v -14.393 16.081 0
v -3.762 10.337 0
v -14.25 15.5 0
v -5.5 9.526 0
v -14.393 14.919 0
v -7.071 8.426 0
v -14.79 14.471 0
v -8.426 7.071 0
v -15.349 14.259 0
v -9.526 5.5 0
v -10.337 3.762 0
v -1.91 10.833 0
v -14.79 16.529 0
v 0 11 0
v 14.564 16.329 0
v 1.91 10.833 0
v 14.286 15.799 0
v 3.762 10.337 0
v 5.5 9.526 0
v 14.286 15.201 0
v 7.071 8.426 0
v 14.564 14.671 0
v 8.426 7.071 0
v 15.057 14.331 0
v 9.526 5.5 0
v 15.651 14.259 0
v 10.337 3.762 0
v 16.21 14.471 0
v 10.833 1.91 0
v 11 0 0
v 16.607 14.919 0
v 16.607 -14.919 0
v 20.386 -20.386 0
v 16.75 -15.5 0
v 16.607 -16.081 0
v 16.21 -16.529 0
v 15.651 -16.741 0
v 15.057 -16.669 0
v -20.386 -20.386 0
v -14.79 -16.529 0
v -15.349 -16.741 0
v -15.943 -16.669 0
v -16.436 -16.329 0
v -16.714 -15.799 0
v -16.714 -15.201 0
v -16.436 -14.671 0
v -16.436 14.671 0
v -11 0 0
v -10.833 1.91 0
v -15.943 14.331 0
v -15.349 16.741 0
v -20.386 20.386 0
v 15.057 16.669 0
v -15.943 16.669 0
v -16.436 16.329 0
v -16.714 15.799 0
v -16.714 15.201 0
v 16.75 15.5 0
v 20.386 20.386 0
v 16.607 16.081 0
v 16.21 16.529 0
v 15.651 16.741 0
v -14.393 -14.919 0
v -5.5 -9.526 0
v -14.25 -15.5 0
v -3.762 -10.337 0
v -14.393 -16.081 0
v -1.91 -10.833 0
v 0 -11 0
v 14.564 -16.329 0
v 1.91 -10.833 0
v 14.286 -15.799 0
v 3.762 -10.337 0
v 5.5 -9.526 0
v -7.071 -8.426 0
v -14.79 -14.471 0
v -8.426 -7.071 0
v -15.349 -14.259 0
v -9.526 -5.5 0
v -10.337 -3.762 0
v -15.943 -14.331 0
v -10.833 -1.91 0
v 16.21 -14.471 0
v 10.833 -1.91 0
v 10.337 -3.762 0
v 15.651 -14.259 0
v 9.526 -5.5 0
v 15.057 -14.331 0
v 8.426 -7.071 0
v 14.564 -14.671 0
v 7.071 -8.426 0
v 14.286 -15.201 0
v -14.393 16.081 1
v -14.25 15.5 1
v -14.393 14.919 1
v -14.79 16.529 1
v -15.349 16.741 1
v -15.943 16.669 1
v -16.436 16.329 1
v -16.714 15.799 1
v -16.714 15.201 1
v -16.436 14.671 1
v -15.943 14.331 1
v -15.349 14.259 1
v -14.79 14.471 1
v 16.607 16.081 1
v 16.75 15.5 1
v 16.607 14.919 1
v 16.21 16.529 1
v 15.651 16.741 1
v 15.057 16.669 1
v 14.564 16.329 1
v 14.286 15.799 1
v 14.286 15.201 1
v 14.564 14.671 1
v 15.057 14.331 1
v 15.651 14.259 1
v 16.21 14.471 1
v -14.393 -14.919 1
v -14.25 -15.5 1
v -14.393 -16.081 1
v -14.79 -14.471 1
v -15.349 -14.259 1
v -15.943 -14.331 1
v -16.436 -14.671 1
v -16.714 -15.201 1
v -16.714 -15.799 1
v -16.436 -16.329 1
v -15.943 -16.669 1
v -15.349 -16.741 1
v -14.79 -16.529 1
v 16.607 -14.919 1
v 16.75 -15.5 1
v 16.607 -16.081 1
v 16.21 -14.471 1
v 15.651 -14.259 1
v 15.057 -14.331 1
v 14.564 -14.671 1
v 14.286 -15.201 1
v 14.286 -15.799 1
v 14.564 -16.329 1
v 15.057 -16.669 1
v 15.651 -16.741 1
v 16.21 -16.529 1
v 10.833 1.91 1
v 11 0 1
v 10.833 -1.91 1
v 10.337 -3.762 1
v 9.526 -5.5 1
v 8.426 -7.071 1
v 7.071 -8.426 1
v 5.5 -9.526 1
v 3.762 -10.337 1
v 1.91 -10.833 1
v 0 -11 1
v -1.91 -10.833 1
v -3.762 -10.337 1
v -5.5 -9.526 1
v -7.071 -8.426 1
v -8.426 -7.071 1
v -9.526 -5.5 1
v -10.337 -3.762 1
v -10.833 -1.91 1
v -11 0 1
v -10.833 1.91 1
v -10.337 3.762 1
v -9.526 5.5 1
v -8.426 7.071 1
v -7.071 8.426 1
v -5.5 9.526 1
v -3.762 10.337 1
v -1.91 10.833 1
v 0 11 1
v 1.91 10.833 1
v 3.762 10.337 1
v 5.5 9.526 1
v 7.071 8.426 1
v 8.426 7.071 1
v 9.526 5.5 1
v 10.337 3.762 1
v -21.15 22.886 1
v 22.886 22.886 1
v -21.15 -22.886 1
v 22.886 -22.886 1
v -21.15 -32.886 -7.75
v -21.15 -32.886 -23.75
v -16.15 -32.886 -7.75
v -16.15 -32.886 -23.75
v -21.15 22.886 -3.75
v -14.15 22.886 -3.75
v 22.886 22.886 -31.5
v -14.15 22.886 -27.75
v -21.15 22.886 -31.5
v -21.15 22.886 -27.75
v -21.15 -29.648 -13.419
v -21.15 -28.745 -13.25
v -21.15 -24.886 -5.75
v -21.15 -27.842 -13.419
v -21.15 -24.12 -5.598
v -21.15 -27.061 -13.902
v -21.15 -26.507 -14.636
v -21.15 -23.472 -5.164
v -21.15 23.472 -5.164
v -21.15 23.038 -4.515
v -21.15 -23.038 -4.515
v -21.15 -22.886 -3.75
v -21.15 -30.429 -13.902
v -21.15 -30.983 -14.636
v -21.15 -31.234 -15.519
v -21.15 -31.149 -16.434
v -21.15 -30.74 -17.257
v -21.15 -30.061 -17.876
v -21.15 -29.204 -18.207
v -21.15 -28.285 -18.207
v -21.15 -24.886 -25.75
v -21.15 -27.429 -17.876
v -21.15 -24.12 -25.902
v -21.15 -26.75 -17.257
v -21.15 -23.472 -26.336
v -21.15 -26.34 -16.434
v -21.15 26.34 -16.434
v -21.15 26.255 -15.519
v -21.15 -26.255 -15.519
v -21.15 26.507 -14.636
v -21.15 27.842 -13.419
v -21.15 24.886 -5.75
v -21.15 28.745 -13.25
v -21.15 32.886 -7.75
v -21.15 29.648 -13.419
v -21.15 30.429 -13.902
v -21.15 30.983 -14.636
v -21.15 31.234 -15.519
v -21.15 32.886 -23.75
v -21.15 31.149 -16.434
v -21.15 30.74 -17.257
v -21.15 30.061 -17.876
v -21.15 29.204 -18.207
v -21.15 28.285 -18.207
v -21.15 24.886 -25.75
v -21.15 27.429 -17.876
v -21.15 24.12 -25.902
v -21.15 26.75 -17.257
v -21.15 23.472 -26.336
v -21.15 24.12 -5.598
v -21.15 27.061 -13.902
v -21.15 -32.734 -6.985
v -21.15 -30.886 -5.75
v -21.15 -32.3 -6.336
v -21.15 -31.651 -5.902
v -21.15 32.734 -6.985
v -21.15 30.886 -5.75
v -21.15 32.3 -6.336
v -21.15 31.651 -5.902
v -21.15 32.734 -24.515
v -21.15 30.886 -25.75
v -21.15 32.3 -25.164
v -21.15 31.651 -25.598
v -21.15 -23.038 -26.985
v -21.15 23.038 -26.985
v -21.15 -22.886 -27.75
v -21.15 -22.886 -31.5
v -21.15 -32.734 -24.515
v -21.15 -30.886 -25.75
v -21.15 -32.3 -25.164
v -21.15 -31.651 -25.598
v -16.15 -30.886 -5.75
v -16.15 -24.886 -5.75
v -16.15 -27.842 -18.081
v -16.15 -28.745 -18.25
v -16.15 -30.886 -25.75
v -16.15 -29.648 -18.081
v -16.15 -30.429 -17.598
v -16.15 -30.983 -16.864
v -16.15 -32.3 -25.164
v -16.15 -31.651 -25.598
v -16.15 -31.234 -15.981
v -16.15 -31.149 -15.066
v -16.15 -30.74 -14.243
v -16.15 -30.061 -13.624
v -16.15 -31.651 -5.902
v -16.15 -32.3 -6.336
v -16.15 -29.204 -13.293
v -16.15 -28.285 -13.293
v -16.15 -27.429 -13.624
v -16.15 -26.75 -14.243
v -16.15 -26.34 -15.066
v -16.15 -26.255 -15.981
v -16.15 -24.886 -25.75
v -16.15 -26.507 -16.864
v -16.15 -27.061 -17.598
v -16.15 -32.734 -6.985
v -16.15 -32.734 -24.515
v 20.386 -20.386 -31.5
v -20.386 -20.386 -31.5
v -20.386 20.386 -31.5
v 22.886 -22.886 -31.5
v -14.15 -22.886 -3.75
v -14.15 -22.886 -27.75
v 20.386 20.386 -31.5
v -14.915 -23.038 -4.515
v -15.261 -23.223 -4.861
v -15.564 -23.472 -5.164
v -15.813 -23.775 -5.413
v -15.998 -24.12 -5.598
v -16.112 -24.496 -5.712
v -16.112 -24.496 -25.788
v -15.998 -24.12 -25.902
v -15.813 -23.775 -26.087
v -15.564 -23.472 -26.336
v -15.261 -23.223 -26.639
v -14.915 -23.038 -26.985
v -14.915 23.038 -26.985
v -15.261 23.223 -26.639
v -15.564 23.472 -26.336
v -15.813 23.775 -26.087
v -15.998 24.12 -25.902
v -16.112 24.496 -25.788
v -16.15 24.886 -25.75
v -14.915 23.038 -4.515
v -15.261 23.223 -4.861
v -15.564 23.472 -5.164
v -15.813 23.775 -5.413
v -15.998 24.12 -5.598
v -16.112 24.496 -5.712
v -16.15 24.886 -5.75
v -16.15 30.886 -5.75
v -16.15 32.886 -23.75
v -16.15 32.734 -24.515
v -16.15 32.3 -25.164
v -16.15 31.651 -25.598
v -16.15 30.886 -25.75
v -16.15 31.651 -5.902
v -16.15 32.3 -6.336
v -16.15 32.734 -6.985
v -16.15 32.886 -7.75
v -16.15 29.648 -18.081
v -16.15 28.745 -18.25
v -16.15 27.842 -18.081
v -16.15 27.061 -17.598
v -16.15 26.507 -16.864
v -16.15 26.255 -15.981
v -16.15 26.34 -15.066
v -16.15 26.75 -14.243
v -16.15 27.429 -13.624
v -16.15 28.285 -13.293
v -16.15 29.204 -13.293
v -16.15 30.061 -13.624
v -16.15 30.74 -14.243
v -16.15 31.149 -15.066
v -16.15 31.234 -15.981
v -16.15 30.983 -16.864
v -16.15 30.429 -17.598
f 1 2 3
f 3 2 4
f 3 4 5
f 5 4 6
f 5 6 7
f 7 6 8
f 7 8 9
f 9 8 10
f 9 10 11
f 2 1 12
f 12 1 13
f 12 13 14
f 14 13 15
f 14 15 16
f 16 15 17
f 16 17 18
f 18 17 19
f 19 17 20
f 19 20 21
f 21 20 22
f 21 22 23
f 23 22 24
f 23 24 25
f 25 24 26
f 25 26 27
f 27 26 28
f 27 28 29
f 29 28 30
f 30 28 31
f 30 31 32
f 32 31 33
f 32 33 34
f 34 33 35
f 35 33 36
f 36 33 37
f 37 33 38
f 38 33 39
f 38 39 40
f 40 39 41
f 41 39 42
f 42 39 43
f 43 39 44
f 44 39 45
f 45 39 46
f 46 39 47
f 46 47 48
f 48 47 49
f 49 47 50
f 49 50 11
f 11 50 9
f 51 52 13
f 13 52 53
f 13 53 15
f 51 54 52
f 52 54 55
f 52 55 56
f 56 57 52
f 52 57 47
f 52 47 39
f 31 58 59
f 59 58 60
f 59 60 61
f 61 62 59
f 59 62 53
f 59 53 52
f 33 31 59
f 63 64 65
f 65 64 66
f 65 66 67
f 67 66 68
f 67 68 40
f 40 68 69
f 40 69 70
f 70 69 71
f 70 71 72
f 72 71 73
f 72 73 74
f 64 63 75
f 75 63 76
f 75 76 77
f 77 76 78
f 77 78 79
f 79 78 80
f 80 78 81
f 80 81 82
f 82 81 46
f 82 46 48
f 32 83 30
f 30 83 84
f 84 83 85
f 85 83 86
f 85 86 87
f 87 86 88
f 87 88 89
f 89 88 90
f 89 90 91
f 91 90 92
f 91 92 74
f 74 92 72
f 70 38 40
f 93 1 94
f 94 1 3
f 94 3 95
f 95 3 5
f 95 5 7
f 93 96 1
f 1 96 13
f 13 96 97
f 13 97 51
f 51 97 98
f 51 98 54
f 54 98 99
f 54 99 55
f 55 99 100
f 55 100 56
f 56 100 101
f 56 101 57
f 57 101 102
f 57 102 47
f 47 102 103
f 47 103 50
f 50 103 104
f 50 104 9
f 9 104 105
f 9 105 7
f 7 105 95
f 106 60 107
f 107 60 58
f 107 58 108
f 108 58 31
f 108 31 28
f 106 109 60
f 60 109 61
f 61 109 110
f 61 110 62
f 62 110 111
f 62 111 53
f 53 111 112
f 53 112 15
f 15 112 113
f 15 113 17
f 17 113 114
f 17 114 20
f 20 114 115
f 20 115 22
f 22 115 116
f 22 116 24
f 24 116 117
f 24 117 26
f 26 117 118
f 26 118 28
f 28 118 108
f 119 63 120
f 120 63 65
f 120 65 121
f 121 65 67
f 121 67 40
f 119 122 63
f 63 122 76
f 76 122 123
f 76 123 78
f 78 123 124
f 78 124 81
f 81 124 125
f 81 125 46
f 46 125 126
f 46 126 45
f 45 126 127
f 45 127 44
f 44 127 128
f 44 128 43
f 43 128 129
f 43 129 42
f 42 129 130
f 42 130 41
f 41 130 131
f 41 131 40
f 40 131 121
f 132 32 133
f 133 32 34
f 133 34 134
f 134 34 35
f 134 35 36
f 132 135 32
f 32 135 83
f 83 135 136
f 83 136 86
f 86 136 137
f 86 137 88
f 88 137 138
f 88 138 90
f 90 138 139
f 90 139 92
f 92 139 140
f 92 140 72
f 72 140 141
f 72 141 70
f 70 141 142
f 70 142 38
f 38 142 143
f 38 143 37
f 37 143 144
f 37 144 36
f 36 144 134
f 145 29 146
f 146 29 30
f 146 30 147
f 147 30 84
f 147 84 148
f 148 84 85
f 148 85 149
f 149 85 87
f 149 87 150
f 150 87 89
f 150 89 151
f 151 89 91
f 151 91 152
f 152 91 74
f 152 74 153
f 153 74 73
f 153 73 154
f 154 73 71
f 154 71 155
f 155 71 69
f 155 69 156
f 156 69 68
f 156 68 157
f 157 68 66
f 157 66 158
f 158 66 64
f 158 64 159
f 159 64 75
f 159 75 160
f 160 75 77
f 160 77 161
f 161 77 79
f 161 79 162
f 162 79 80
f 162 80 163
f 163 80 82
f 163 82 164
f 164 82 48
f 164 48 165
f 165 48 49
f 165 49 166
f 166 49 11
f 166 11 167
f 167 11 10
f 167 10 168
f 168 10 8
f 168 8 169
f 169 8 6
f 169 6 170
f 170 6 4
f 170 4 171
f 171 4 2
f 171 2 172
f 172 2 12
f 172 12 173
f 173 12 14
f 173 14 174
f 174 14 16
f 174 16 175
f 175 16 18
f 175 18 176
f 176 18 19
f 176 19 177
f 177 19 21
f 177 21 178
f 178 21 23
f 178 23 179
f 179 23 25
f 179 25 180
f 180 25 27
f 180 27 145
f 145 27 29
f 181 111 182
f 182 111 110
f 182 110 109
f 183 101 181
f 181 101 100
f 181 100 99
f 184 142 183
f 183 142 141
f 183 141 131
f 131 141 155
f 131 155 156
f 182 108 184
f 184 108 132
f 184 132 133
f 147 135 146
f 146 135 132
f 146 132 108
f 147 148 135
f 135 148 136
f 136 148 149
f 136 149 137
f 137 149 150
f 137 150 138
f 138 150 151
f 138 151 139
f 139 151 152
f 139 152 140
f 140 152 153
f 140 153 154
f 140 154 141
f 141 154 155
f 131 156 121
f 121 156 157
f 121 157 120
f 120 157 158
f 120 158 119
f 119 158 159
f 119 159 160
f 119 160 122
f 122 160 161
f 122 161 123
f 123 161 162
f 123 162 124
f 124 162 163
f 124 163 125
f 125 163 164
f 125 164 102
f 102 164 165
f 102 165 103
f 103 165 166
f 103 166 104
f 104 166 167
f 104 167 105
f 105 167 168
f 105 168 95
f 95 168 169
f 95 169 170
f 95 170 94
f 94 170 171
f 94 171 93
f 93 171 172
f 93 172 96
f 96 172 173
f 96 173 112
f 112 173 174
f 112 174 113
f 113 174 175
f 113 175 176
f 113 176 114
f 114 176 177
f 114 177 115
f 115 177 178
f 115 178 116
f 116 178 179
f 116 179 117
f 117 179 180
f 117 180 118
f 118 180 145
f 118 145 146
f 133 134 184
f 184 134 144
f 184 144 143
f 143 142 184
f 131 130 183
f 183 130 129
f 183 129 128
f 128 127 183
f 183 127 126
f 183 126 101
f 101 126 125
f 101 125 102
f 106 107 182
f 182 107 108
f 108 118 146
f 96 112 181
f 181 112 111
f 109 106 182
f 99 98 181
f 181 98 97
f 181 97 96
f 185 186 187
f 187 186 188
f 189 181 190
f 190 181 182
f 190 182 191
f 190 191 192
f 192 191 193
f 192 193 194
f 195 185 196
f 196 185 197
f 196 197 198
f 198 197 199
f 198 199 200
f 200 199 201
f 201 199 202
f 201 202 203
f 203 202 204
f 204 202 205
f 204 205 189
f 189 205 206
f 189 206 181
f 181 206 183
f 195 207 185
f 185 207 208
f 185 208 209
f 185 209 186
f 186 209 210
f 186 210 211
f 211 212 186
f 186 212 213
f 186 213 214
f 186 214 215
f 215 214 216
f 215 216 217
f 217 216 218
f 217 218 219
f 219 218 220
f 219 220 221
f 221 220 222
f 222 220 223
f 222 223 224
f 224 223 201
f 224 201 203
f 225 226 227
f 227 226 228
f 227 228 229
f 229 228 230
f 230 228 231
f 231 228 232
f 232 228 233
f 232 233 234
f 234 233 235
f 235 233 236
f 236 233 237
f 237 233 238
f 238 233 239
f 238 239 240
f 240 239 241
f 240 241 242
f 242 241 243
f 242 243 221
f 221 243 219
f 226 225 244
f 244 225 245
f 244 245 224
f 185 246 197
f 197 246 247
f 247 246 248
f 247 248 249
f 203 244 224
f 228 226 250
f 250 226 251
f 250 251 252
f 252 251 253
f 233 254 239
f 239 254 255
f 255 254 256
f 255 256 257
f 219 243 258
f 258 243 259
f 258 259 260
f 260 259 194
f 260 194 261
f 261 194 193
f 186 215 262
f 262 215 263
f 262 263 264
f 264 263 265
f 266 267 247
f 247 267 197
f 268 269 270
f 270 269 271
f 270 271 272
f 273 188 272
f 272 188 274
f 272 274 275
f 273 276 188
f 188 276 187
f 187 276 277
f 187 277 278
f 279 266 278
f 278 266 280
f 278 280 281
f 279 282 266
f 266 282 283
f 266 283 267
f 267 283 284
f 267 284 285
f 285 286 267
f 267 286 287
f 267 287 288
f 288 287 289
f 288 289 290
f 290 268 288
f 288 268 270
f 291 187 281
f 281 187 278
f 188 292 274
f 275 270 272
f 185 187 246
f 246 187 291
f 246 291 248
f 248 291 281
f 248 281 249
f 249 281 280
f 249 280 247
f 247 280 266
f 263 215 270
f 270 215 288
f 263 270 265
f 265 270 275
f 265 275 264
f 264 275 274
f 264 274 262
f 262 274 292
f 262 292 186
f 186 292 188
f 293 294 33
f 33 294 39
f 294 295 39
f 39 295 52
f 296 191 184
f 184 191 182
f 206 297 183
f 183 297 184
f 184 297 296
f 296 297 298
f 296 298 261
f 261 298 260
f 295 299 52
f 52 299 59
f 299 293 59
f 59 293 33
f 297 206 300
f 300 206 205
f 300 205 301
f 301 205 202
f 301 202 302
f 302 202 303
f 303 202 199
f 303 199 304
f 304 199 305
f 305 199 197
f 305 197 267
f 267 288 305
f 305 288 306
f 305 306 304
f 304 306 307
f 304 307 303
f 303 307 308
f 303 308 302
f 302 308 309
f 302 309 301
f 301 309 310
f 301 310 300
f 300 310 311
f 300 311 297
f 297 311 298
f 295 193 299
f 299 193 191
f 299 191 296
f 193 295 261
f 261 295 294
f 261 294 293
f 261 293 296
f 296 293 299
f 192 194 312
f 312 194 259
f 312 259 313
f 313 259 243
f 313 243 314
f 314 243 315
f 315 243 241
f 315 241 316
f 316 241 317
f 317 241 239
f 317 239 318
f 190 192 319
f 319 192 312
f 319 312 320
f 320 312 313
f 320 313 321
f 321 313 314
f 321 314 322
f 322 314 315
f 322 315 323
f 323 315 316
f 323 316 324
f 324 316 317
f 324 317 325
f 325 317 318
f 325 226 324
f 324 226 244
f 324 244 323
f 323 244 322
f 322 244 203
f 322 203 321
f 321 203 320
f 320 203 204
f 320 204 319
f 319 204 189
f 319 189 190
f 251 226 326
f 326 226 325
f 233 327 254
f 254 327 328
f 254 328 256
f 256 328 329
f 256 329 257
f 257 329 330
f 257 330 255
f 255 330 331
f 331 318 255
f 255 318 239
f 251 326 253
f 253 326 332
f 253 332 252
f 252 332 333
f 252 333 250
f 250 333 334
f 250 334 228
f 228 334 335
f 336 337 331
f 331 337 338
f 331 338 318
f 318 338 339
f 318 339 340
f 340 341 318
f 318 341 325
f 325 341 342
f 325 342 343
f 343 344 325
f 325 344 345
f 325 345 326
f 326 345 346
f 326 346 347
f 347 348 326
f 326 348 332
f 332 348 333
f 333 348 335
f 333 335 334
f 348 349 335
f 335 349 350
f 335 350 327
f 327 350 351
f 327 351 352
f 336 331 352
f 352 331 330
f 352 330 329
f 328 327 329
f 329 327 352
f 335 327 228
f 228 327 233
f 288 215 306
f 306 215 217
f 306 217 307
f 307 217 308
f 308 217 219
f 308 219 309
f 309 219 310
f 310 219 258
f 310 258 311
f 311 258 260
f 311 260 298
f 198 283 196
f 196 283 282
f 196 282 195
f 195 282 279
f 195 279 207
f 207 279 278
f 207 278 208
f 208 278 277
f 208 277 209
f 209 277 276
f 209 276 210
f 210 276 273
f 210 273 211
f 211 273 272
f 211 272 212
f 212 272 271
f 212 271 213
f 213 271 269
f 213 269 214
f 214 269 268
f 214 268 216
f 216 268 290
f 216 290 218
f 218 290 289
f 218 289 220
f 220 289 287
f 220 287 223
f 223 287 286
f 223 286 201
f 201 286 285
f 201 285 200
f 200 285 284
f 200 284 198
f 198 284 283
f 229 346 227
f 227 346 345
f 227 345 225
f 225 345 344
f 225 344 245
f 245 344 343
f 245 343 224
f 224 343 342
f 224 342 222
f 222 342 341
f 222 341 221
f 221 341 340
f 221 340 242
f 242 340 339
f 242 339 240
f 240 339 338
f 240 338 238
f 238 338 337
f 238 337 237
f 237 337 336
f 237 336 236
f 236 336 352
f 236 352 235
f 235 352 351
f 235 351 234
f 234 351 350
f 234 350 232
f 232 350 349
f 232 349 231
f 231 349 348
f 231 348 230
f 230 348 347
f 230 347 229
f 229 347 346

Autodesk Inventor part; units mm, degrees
ref_plane "YZ Plane" through (0, 0, 0) normal (1, 0, 0) x (0, 1, 0)
ref_plane "XZ Plane" through (0, 0, 0) normal (0, 1, 0) x (-1, 0, 0)
sketch "Sketch1" plane through (0, 0, 0) normal (0, 0, 1) x (1, 0, 0)
  line L0 (20.0607, 17.4322) -> (17.4322, 20.0607) construction
  arc A0 (17.4322, 20.0607) -> (16.3716, 20.5) centre (16.3716, 19) ccw construction
  line L1 (16.3716, 20.5) -> (-16.3716, 20.5) construction
  arc A1 (-16.3716, 20.5) -> (-17.4322, 20.0607) centre (-16.3716, 19) ccw construction
  line L2 (-17.4322, 20.0607) -> (-20.0607, 17.4322) construction
  arc A2 (-20.0607, 17.4322) -> (-20.5, 16.3716) centre (-19, 16.3716) ccw construction
  line L3 (-20.5, 16.3716) -> (-20.5, -16.3716) construction
  arc A3 (-20.5, -16.3716) -> (-20.0607, -17.4322) centre (-19, -16.3716) ccw construction
  line L4 (-20.0607, -17.4322) -> (-17.4322, -20.0607) construction
  arc A4 (-17.4322, -20.0607) -> (-16.3716, -20.5) centre (-16.3716, -19) ccw construction
  line L5 (-16.3716, -20.5) -> (16.3716, -20.5) construction
  arc A5 (16.3716, -20.5) -> (17.4322, -20.0607) centre (16.3716, -19) ccw construction
  line L6 (17.4322, -20.0607) -> (20.0607, -17.4322) construction
  arc A6 (20.0607, -17.4322) -> (20.5, -16.3716) centre (19, -16.3716) ccw construction
  line L7 (20.5, -16.3716) -> (20.5, 16.3716) construction
  arc A7 (20.5, 16.3716) -> (20.0607, 17.4322) centre (19, 16.3716) ccw construction
  circle A8 centre (0, 0) radius 16.5 construction
  circle A9 centre (15.5, 15.5) radius 1.55 construction
  circle A10 centre (15.5, -15.5) radius 1.55 construction
  circle A11 centre (-15.5, -15.5) radius 1.55 construction
  circle A12 centre (-15.5, 15.5) radius 1.55 construction
  line L8 (0, 0) -> (-20.3858, 0) construction
  line L9 (-20.3858, 0) -> (-20.3858, -20.3858) construction
  line L10 (-20.3858, -20.3858) -> (0, -20.3858) construction
  line L11 (0, -20.3858) -> (0, 0) construction
  line L12 (0, 0) -> (-20.3858, 0) construction
  line L13 (-20.3858, 0) -> (-20.3858, 20.3858) construction
  line L14 (-20.3858, 20.3858) -> (0, 20.3858) construction
  line L15 (0, 20.3858) -> (0, 0) construction
  line L16 (0, 0) -> (20.3858, 0) construction
  line L17 (20.3858, 0) -> (20.3858, 20.3858) construction
  line L18 (20.3858, 20.3858) -> (0, 20.3858) construction
  line L19 (0, 20.3858) -> (0, 0) construction
  line L20 (0, 0) -> (20.3858, 0) construction
  line L21 (20.3858, 0) -> (20.3858, -20.3858) construction
  line L22 (20.3858, -20.3858) -> (0, -20.3858) construction
  line L23 (0, -20.3858) -> (0, 0) construction
  line L24 (-20.3858, -20.3858) -> (20.3858, -20.3858)
  line L25 (20.3858, -20.3858) -> (20.3858, 20.3858)
  line L26 (20.3858, 20.3858) -> (-20.3858, 20.3858)
  line L27 (-20.3858, 20.3858) -> (-20.3858, -20.3858)
  line L28 (-21.15, -107.4) -> (-21.15, 107.4) projected
  line L29 (-21.15, 22.8858) -> (22.8858, 22.8858)
  line L30 (22.8858, 22.8858) -> (22.8858, -22.8858)
  line L31 (22.8858, -22.8858) -> (-21.15, -22.8858)
  point P0 (0, 0)
  dimension "d0" = 2.5
ref_plane "Work Plane1" through (-21.15, -21.15, -31.5) normal (0, 0, -1) x (0, 1, 0)
extrude "Extrusion1" add sketch "Sketch1" against normal up to surface (31.5 mm away)
ref_plane "Work Plane2" through (-21.15, -10, -125) normal (1, 0, 0) x (0, 0, 1)
sketch "Sketch2" plane through (-21.15, -10, -125) normal (1, 0, 0) x (0, 0, 1)
  line L0 (125, 12.8858) -> (125, -32.8858) projected
  line L1 (93.5, 12.8858) -> (93.5, -32.8858) projected
  line L2 (125, -32.8858) -> (93.5, -32.8858) projected
  line L3 (125, 12.8858) -> (125, -32.8858) projected
  line L4 (125, 12.8858) -> (93.5, 12.8858) projected
  line L5 (125, -10) -> (93.5, -10) construction
  line L6 (109.25, 12.8858) -> (109.25, -32.8858) construction
  line L7 (109.25, -32.8858) -> (119.25, -32.8858) construction
  line L8 (119.25, -32.8858) -> (119.25, -42.8858)
  line L9 (119.25, -42.8858) -> (109.25, -42.8858)
  line L10 (109.25, -42.8858) -> (109.25, -32.8858) construction
  line L11 (109.25, -42.8858) -> (99.25, -42.8858)
  line L12 (99.25, -42.8858) -> (99.25, -32.8858)
  line L13 (99.25, -32.8858) -> (109.25, -32.8858) construction
  line L14 (109.25, -32.8858) -> (109.25, -42.8858) construction
  line L15 (125, 12.8858) -> (93.5, 12.8858)
  line L16 (119.25, 12.8858) -> (119.25, 22.8858)
  line L17 (119.25, 22.8858) -> (109.25, 22.8858)
  line L18 (109.25, 22.8858) -> (99.25, 22.8858)
  line L19 (99.25, 22.8858) -> (99.25, 12.8858)
  dimension "d3" = 10
  dimension "d4" = 10
  dimension "d5" = 10
  dimension "d6" = 10
extrude "Extrusion2" add sketch "Sketch2" along normal blind 5 contours L4 L19 L18 L17 L16 | L8 L9 L11 L12 L2
sketch "Sketch3" plane through (0, 0, 0) normal (0, 0, 1) x (1, 0, 0)
  line L0 (22.8858, 22.8858) -> (-21.15, 22.8858) projected
  line L1 (-21.15, 22.8858) -> (-21.15, -22.8858) projected
  line L2 (22.8858, 22.8858) -> (-21.15, 22.8858)
  line L3 (-21.15, 22.8858) -> (-21.15, -22.8858)
  line L4 (-21.15, -22.8858) -> (22.8858, -22.8858)
  line L5 (22.8858, -22.8858) -> (22.8858, 22.8858)
  circle A0 centre (-15.5, 15.5) radius 1.25 projected
  circle A1 centre (15.5, 15.5) radius 1.25 projected
  circle A2 centre (-15.5, -15.5) radius 1.25 projected
  circle A3 centre (15.5, -15.5) radius 1.25 projected
  circle A4 centre (0, 0) radius 11 projected
  point P0 (0, 0)
extrude "Extrusion3" add sketch "Sketch3" along normal blind 1
fillet "Fillet1" radius 2 10 edges at (-18.65, 22.8858, -25.75) (-18.65, 32.8858, -25.75) (-18.65, 32.8858, -5.75) (-18.65, 22.8858, -5.75) (-18.65, -22.8858, -25.75) (-18.65, -32.8858, -25.75) (-18.65, -32.8858, -5.75) (-18.65, -22.8858, -5.75) (-16.15, -22.8858, -15.75) (-16.15, 22.8858, -15.75)
sketch "Sketch4" plane through (-16.15, -10, -125) normal (1, 0, 0) x (0, 0, -1)
  arc A0 (-117.25, 42.8858) -> (-119.25, 40.8858) centre (-117.25, 40.8858) ccw projected
  line L0 (-119.25, 40.8858) -> (-119.25, 34.8858) projected
  line L1 (-99.25, 34.8858) -> (-119.25, 34.8858) projected
  line L2 (-99.25, 34.8858) -> (-99.25, 40.8858) projected
  arc A1 (-99.25, 40.8858) -> (-101.25, 42.8858) centre (-101.25, 40.8858) ccw projected
  line L3 (-101.25, 42.8858) -> (-117.25, 42.8858) projected
  arc A2 (-119.25, -20.8858) -> (-117.25, -22.8858) centre (-117.25, -20.8858) ccw projected
  line L4 (-117.25, -22.8858) -> (-101.25, -22.8858) projected
  arc A3 (-101.25, -22.8858) -> (-99.25, -20.8858) centre (-101.25, -20.8858) ccw projected
  line L5 (-99.25, -20.8858) -> (-99.25, -14.8858) projected
  line L6 (-119.25, -14.8858) -> (-99.25, -14.8858) projected
  line L7 (-119.25, -14.8858) -> (-119.25, -20.8858) projected
  circle A4 centre (-109.25, 38.7448) radius 2.5
  line L8 (-215.88, 9.0017) -> (215.88, 9.0017) construction
  line L9 (-126, 32.8858) -> (-126, -12.8858) construction
  line L10 (-126, 10) -> (-93.5, 10) construction
  line L11 (-93.5, 32.8858) -> (-93.5, -12.8858) construction
  circle A5 centre (-109.25, -18.7448) radius 2.5
  point P0 (-125, 10)
  dimension "d12" = 5
extrude "Extrusion4" cut sketch "Sketch4" against normal up to surface (5 mm away) contours A4 | A5
properties part number "Nema17WheelMotorMount"
